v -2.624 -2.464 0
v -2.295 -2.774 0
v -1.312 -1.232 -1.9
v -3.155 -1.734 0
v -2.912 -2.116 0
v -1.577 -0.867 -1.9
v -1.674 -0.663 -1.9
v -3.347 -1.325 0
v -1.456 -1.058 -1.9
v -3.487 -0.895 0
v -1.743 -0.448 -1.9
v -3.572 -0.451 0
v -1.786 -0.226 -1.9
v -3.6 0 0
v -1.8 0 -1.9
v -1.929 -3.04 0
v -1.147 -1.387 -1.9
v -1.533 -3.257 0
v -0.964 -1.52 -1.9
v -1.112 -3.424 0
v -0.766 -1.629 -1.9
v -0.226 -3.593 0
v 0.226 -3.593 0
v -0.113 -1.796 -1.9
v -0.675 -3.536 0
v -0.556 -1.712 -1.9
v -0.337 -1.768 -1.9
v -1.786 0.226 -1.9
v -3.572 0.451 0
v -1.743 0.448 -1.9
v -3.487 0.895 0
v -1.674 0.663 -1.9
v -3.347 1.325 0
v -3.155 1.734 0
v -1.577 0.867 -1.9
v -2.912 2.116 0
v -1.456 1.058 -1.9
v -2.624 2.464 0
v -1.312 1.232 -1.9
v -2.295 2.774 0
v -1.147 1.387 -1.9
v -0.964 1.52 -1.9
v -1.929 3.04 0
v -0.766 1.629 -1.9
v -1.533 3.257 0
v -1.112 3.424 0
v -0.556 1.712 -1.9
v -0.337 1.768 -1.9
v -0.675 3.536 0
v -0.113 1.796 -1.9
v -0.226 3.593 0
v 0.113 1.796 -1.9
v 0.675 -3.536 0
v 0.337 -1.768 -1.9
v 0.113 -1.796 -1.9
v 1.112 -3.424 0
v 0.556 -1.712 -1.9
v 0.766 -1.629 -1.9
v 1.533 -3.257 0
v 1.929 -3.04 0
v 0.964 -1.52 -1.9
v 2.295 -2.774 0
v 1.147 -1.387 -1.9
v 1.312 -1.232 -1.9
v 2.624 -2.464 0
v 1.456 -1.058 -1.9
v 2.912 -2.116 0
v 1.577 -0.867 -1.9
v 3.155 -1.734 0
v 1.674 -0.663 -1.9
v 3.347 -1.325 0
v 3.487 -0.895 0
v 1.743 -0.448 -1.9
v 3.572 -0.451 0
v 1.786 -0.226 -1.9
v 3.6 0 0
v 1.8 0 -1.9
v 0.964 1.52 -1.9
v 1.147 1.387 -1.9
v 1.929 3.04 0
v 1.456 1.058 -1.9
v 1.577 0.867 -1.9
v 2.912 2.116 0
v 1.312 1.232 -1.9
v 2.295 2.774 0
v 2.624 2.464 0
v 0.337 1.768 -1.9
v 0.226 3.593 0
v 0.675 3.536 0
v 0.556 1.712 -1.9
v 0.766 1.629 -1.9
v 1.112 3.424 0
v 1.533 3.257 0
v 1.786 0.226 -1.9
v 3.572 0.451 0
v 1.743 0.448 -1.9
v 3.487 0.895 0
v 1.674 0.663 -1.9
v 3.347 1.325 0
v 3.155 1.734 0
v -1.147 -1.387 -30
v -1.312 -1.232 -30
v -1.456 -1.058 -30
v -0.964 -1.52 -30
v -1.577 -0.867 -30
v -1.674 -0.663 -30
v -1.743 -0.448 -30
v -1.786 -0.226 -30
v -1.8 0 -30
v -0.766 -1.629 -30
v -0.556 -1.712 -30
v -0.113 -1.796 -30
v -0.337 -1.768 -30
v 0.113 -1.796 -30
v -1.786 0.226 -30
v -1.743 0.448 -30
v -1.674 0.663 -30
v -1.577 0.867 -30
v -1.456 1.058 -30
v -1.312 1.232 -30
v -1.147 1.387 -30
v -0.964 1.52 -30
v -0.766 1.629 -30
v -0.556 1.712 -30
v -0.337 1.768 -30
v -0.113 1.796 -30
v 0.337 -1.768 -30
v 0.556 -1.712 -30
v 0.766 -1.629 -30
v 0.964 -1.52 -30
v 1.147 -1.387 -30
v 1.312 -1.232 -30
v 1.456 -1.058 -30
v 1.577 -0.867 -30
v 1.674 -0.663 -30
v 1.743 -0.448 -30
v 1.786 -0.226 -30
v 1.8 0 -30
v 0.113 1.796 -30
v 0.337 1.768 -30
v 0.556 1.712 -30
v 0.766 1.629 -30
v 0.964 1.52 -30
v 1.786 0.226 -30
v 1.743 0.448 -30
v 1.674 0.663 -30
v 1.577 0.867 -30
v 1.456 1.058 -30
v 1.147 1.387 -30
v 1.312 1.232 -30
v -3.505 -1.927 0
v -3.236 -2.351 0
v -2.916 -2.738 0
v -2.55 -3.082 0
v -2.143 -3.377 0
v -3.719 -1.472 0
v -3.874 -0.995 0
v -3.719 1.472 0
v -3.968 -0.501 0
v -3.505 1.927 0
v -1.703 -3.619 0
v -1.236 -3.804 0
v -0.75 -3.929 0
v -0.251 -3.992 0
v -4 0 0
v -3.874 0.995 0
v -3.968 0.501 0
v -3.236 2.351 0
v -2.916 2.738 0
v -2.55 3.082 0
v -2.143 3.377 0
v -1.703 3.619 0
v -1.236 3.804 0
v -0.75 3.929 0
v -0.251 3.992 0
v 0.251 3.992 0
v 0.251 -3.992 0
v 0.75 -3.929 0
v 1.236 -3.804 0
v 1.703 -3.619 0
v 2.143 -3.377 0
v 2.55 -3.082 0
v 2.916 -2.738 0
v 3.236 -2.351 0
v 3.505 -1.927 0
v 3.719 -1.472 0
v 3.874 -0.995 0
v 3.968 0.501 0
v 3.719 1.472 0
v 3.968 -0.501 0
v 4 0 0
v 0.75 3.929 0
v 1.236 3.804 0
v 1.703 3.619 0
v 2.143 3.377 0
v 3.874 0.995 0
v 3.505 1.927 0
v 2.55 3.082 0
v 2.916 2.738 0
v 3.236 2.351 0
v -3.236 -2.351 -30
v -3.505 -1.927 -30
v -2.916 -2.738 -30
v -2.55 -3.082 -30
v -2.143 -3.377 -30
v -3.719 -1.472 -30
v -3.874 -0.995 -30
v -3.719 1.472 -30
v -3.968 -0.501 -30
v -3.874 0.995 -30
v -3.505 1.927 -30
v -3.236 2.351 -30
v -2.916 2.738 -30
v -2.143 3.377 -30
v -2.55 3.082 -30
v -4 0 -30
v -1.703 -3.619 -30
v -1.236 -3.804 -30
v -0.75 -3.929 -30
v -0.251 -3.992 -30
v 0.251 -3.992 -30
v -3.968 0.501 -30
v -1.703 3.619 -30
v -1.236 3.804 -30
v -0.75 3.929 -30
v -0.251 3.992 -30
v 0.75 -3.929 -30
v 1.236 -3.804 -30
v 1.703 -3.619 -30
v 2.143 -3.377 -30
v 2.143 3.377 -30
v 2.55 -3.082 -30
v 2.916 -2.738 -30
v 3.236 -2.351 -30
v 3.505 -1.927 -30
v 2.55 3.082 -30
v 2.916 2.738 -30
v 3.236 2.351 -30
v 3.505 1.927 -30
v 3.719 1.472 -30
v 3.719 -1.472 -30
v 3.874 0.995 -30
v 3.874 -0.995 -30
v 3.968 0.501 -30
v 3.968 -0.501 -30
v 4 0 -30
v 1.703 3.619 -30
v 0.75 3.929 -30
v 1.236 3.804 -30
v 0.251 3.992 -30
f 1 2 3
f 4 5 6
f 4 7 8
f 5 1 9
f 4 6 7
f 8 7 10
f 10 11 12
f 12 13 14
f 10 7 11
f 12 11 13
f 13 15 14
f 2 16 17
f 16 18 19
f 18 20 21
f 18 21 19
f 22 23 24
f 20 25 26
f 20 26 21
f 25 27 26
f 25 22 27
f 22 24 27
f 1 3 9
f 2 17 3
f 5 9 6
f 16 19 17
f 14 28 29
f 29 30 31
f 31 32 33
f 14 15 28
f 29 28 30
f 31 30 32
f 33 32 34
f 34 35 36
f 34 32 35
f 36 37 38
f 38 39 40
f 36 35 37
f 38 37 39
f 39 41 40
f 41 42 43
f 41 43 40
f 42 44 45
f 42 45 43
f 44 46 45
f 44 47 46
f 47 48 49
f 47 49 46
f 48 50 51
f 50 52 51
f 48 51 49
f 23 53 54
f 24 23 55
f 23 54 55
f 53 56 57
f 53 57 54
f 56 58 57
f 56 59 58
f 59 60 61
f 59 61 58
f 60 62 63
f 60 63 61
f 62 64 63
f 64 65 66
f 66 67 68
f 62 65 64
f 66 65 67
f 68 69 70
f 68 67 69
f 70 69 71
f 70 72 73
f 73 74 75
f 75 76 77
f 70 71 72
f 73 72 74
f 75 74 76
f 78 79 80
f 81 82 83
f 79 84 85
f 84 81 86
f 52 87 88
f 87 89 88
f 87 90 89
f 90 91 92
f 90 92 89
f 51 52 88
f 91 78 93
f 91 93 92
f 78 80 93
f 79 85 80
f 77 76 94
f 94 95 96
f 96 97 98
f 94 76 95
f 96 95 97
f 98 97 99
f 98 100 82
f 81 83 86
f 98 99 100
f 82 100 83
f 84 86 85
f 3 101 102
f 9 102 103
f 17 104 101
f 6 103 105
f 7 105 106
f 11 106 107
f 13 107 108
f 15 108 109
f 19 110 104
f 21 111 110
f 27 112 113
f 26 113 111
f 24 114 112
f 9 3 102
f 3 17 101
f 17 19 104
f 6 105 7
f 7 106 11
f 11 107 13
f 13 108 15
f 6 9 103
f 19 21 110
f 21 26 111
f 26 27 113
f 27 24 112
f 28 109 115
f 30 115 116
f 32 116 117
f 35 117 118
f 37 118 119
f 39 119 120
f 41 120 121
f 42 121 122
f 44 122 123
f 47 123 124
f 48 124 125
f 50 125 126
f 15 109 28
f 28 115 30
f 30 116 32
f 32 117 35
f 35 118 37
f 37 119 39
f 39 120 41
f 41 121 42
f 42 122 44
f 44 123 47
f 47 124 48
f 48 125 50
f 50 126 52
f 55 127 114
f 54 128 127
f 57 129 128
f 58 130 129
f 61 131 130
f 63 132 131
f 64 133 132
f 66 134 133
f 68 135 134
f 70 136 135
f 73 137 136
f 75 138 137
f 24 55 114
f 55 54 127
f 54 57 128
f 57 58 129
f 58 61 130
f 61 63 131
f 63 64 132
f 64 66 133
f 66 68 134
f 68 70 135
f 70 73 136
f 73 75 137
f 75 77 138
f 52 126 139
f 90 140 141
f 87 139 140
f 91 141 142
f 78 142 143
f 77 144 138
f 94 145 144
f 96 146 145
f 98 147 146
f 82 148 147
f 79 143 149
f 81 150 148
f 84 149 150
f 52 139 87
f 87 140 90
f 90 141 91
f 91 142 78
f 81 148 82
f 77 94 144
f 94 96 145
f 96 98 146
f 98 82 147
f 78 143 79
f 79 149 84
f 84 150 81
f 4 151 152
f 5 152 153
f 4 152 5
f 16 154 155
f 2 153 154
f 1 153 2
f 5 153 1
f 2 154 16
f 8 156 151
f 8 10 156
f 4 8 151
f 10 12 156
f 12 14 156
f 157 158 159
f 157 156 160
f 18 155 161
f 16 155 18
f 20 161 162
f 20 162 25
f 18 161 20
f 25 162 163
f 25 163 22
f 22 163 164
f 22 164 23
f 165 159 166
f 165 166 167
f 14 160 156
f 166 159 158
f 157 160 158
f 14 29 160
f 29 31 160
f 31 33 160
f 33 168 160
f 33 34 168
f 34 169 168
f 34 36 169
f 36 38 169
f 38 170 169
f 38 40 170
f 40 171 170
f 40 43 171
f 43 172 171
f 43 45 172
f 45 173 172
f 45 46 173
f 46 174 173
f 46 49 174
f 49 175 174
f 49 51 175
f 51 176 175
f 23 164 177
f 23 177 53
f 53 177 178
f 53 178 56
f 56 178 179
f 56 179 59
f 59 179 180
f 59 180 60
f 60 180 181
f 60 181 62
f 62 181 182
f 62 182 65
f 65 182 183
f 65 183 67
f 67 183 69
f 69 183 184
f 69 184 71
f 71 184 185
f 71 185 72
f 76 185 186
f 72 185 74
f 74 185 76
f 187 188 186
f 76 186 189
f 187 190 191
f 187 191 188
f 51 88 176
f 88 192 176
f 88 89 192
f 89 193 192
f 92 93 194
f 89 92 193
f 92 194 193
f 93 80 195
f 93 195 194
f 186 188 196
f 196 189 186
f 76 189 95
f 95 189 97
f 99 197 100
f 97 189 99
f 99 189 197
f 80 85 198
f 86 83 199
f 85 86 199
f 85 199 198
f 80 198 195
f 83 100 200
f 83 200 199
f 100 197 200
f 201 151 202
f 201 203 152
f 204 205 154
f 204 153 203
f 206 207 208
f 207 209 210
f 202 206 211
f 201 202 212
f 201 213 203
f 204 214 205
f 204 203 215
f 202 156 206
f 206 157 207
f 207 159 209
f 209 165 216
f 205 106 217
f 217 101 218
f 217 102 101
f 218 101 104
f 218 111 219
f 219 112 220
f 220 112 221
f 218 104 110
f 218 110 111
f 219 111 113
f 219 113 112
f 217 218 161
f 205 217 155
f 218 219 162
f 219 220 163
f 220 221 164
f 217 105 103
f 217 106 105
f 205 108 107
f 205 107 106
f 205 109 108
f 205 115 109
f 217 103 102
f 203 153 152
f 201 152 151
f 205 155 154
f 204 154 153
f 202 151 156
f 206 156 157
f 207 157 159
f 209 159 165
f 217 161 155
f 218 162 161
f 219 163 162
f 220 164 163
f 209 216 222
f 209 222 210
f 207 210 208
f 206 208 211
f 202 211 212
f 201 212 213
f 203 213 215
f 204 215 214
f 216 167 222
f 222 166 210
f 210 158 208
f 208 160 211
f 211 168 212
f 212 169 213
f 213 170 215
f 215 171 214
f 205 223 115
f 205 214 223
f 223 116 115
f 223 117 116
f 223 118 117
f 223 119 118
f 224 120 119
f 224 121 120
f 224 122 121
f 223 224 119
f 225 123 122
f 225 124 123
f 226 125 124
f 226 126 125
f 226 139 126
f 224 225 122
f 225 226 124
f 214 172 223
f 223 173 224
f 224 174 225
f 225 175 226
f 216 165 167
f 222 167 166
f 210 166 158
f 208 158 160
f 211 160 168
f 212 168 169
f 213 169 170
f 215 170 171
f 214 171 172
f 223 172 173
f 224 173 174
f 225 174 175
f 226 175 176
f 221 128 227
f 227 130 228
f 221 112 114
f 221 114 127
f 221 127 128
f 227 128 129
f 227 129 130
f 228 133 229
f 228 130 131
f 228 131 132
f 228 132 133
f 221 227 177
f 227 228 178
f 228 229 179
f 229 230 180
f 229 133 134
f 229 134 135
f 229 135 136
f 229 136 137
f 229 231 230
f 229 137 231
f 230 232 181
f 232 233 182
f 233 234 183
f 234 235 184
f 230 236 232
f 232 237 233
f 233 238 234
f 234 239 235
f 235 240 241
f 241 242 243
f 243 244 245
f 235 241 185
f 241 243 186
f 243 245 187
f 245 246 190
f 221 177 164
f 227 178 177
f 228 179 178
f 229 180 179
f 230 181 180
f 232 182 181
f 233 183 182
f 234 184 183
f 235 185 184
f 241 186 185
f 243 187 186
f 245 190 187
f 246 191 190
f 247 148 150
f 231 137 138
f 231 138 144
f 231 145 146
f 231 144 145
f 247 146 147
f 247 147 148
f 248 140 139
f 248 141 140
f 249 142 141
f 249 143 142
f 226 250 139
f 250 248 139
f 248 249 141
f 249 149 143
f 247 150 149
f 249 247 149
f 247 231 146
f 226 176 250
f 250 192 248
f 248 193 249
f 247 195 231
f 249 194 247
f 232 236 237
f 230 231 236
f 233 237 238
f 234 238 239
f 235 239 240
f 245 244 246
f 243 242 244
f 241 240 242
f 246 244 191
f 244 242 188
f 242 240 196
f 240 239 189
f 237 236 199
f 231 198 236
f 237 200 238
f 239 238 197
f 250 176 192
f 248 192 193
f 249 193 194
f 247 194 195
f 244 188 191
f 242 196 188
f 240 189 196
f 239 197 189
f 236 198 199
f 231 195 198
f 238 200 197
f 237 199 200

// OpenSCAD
$fn = 50;

difference() {
	union() {
		translate(v = [0, 0, -30.0]) {
			cylinder(h = 33, r = 4.0);
		}
	}
	union() {
		translate(v = [0, 0, 0]) {
			rotate(a = [0, 0, 0]) {
				difference() {
					union() {
						translate(v = [0, 0, -33.0]) {
							cylinder(h = 33, r = 1.5);
						}
						translate(v = [0, 0, -1.9]) {
							cylinder(h = 1.9, r1 = 1.8, r2 = 3.6);
						}
						translate(v = [0, 0, -33.0]) {
							cylinder(h = 33, r = 1.8);
						}
						translate(v = [0, 0, -33.0]) {
							cylinder(h = 33, r = 1.5);
						}
					}
					union();
				}
			}
		}
		#cylinder(h = 3, r = 5.0);
	}
}
